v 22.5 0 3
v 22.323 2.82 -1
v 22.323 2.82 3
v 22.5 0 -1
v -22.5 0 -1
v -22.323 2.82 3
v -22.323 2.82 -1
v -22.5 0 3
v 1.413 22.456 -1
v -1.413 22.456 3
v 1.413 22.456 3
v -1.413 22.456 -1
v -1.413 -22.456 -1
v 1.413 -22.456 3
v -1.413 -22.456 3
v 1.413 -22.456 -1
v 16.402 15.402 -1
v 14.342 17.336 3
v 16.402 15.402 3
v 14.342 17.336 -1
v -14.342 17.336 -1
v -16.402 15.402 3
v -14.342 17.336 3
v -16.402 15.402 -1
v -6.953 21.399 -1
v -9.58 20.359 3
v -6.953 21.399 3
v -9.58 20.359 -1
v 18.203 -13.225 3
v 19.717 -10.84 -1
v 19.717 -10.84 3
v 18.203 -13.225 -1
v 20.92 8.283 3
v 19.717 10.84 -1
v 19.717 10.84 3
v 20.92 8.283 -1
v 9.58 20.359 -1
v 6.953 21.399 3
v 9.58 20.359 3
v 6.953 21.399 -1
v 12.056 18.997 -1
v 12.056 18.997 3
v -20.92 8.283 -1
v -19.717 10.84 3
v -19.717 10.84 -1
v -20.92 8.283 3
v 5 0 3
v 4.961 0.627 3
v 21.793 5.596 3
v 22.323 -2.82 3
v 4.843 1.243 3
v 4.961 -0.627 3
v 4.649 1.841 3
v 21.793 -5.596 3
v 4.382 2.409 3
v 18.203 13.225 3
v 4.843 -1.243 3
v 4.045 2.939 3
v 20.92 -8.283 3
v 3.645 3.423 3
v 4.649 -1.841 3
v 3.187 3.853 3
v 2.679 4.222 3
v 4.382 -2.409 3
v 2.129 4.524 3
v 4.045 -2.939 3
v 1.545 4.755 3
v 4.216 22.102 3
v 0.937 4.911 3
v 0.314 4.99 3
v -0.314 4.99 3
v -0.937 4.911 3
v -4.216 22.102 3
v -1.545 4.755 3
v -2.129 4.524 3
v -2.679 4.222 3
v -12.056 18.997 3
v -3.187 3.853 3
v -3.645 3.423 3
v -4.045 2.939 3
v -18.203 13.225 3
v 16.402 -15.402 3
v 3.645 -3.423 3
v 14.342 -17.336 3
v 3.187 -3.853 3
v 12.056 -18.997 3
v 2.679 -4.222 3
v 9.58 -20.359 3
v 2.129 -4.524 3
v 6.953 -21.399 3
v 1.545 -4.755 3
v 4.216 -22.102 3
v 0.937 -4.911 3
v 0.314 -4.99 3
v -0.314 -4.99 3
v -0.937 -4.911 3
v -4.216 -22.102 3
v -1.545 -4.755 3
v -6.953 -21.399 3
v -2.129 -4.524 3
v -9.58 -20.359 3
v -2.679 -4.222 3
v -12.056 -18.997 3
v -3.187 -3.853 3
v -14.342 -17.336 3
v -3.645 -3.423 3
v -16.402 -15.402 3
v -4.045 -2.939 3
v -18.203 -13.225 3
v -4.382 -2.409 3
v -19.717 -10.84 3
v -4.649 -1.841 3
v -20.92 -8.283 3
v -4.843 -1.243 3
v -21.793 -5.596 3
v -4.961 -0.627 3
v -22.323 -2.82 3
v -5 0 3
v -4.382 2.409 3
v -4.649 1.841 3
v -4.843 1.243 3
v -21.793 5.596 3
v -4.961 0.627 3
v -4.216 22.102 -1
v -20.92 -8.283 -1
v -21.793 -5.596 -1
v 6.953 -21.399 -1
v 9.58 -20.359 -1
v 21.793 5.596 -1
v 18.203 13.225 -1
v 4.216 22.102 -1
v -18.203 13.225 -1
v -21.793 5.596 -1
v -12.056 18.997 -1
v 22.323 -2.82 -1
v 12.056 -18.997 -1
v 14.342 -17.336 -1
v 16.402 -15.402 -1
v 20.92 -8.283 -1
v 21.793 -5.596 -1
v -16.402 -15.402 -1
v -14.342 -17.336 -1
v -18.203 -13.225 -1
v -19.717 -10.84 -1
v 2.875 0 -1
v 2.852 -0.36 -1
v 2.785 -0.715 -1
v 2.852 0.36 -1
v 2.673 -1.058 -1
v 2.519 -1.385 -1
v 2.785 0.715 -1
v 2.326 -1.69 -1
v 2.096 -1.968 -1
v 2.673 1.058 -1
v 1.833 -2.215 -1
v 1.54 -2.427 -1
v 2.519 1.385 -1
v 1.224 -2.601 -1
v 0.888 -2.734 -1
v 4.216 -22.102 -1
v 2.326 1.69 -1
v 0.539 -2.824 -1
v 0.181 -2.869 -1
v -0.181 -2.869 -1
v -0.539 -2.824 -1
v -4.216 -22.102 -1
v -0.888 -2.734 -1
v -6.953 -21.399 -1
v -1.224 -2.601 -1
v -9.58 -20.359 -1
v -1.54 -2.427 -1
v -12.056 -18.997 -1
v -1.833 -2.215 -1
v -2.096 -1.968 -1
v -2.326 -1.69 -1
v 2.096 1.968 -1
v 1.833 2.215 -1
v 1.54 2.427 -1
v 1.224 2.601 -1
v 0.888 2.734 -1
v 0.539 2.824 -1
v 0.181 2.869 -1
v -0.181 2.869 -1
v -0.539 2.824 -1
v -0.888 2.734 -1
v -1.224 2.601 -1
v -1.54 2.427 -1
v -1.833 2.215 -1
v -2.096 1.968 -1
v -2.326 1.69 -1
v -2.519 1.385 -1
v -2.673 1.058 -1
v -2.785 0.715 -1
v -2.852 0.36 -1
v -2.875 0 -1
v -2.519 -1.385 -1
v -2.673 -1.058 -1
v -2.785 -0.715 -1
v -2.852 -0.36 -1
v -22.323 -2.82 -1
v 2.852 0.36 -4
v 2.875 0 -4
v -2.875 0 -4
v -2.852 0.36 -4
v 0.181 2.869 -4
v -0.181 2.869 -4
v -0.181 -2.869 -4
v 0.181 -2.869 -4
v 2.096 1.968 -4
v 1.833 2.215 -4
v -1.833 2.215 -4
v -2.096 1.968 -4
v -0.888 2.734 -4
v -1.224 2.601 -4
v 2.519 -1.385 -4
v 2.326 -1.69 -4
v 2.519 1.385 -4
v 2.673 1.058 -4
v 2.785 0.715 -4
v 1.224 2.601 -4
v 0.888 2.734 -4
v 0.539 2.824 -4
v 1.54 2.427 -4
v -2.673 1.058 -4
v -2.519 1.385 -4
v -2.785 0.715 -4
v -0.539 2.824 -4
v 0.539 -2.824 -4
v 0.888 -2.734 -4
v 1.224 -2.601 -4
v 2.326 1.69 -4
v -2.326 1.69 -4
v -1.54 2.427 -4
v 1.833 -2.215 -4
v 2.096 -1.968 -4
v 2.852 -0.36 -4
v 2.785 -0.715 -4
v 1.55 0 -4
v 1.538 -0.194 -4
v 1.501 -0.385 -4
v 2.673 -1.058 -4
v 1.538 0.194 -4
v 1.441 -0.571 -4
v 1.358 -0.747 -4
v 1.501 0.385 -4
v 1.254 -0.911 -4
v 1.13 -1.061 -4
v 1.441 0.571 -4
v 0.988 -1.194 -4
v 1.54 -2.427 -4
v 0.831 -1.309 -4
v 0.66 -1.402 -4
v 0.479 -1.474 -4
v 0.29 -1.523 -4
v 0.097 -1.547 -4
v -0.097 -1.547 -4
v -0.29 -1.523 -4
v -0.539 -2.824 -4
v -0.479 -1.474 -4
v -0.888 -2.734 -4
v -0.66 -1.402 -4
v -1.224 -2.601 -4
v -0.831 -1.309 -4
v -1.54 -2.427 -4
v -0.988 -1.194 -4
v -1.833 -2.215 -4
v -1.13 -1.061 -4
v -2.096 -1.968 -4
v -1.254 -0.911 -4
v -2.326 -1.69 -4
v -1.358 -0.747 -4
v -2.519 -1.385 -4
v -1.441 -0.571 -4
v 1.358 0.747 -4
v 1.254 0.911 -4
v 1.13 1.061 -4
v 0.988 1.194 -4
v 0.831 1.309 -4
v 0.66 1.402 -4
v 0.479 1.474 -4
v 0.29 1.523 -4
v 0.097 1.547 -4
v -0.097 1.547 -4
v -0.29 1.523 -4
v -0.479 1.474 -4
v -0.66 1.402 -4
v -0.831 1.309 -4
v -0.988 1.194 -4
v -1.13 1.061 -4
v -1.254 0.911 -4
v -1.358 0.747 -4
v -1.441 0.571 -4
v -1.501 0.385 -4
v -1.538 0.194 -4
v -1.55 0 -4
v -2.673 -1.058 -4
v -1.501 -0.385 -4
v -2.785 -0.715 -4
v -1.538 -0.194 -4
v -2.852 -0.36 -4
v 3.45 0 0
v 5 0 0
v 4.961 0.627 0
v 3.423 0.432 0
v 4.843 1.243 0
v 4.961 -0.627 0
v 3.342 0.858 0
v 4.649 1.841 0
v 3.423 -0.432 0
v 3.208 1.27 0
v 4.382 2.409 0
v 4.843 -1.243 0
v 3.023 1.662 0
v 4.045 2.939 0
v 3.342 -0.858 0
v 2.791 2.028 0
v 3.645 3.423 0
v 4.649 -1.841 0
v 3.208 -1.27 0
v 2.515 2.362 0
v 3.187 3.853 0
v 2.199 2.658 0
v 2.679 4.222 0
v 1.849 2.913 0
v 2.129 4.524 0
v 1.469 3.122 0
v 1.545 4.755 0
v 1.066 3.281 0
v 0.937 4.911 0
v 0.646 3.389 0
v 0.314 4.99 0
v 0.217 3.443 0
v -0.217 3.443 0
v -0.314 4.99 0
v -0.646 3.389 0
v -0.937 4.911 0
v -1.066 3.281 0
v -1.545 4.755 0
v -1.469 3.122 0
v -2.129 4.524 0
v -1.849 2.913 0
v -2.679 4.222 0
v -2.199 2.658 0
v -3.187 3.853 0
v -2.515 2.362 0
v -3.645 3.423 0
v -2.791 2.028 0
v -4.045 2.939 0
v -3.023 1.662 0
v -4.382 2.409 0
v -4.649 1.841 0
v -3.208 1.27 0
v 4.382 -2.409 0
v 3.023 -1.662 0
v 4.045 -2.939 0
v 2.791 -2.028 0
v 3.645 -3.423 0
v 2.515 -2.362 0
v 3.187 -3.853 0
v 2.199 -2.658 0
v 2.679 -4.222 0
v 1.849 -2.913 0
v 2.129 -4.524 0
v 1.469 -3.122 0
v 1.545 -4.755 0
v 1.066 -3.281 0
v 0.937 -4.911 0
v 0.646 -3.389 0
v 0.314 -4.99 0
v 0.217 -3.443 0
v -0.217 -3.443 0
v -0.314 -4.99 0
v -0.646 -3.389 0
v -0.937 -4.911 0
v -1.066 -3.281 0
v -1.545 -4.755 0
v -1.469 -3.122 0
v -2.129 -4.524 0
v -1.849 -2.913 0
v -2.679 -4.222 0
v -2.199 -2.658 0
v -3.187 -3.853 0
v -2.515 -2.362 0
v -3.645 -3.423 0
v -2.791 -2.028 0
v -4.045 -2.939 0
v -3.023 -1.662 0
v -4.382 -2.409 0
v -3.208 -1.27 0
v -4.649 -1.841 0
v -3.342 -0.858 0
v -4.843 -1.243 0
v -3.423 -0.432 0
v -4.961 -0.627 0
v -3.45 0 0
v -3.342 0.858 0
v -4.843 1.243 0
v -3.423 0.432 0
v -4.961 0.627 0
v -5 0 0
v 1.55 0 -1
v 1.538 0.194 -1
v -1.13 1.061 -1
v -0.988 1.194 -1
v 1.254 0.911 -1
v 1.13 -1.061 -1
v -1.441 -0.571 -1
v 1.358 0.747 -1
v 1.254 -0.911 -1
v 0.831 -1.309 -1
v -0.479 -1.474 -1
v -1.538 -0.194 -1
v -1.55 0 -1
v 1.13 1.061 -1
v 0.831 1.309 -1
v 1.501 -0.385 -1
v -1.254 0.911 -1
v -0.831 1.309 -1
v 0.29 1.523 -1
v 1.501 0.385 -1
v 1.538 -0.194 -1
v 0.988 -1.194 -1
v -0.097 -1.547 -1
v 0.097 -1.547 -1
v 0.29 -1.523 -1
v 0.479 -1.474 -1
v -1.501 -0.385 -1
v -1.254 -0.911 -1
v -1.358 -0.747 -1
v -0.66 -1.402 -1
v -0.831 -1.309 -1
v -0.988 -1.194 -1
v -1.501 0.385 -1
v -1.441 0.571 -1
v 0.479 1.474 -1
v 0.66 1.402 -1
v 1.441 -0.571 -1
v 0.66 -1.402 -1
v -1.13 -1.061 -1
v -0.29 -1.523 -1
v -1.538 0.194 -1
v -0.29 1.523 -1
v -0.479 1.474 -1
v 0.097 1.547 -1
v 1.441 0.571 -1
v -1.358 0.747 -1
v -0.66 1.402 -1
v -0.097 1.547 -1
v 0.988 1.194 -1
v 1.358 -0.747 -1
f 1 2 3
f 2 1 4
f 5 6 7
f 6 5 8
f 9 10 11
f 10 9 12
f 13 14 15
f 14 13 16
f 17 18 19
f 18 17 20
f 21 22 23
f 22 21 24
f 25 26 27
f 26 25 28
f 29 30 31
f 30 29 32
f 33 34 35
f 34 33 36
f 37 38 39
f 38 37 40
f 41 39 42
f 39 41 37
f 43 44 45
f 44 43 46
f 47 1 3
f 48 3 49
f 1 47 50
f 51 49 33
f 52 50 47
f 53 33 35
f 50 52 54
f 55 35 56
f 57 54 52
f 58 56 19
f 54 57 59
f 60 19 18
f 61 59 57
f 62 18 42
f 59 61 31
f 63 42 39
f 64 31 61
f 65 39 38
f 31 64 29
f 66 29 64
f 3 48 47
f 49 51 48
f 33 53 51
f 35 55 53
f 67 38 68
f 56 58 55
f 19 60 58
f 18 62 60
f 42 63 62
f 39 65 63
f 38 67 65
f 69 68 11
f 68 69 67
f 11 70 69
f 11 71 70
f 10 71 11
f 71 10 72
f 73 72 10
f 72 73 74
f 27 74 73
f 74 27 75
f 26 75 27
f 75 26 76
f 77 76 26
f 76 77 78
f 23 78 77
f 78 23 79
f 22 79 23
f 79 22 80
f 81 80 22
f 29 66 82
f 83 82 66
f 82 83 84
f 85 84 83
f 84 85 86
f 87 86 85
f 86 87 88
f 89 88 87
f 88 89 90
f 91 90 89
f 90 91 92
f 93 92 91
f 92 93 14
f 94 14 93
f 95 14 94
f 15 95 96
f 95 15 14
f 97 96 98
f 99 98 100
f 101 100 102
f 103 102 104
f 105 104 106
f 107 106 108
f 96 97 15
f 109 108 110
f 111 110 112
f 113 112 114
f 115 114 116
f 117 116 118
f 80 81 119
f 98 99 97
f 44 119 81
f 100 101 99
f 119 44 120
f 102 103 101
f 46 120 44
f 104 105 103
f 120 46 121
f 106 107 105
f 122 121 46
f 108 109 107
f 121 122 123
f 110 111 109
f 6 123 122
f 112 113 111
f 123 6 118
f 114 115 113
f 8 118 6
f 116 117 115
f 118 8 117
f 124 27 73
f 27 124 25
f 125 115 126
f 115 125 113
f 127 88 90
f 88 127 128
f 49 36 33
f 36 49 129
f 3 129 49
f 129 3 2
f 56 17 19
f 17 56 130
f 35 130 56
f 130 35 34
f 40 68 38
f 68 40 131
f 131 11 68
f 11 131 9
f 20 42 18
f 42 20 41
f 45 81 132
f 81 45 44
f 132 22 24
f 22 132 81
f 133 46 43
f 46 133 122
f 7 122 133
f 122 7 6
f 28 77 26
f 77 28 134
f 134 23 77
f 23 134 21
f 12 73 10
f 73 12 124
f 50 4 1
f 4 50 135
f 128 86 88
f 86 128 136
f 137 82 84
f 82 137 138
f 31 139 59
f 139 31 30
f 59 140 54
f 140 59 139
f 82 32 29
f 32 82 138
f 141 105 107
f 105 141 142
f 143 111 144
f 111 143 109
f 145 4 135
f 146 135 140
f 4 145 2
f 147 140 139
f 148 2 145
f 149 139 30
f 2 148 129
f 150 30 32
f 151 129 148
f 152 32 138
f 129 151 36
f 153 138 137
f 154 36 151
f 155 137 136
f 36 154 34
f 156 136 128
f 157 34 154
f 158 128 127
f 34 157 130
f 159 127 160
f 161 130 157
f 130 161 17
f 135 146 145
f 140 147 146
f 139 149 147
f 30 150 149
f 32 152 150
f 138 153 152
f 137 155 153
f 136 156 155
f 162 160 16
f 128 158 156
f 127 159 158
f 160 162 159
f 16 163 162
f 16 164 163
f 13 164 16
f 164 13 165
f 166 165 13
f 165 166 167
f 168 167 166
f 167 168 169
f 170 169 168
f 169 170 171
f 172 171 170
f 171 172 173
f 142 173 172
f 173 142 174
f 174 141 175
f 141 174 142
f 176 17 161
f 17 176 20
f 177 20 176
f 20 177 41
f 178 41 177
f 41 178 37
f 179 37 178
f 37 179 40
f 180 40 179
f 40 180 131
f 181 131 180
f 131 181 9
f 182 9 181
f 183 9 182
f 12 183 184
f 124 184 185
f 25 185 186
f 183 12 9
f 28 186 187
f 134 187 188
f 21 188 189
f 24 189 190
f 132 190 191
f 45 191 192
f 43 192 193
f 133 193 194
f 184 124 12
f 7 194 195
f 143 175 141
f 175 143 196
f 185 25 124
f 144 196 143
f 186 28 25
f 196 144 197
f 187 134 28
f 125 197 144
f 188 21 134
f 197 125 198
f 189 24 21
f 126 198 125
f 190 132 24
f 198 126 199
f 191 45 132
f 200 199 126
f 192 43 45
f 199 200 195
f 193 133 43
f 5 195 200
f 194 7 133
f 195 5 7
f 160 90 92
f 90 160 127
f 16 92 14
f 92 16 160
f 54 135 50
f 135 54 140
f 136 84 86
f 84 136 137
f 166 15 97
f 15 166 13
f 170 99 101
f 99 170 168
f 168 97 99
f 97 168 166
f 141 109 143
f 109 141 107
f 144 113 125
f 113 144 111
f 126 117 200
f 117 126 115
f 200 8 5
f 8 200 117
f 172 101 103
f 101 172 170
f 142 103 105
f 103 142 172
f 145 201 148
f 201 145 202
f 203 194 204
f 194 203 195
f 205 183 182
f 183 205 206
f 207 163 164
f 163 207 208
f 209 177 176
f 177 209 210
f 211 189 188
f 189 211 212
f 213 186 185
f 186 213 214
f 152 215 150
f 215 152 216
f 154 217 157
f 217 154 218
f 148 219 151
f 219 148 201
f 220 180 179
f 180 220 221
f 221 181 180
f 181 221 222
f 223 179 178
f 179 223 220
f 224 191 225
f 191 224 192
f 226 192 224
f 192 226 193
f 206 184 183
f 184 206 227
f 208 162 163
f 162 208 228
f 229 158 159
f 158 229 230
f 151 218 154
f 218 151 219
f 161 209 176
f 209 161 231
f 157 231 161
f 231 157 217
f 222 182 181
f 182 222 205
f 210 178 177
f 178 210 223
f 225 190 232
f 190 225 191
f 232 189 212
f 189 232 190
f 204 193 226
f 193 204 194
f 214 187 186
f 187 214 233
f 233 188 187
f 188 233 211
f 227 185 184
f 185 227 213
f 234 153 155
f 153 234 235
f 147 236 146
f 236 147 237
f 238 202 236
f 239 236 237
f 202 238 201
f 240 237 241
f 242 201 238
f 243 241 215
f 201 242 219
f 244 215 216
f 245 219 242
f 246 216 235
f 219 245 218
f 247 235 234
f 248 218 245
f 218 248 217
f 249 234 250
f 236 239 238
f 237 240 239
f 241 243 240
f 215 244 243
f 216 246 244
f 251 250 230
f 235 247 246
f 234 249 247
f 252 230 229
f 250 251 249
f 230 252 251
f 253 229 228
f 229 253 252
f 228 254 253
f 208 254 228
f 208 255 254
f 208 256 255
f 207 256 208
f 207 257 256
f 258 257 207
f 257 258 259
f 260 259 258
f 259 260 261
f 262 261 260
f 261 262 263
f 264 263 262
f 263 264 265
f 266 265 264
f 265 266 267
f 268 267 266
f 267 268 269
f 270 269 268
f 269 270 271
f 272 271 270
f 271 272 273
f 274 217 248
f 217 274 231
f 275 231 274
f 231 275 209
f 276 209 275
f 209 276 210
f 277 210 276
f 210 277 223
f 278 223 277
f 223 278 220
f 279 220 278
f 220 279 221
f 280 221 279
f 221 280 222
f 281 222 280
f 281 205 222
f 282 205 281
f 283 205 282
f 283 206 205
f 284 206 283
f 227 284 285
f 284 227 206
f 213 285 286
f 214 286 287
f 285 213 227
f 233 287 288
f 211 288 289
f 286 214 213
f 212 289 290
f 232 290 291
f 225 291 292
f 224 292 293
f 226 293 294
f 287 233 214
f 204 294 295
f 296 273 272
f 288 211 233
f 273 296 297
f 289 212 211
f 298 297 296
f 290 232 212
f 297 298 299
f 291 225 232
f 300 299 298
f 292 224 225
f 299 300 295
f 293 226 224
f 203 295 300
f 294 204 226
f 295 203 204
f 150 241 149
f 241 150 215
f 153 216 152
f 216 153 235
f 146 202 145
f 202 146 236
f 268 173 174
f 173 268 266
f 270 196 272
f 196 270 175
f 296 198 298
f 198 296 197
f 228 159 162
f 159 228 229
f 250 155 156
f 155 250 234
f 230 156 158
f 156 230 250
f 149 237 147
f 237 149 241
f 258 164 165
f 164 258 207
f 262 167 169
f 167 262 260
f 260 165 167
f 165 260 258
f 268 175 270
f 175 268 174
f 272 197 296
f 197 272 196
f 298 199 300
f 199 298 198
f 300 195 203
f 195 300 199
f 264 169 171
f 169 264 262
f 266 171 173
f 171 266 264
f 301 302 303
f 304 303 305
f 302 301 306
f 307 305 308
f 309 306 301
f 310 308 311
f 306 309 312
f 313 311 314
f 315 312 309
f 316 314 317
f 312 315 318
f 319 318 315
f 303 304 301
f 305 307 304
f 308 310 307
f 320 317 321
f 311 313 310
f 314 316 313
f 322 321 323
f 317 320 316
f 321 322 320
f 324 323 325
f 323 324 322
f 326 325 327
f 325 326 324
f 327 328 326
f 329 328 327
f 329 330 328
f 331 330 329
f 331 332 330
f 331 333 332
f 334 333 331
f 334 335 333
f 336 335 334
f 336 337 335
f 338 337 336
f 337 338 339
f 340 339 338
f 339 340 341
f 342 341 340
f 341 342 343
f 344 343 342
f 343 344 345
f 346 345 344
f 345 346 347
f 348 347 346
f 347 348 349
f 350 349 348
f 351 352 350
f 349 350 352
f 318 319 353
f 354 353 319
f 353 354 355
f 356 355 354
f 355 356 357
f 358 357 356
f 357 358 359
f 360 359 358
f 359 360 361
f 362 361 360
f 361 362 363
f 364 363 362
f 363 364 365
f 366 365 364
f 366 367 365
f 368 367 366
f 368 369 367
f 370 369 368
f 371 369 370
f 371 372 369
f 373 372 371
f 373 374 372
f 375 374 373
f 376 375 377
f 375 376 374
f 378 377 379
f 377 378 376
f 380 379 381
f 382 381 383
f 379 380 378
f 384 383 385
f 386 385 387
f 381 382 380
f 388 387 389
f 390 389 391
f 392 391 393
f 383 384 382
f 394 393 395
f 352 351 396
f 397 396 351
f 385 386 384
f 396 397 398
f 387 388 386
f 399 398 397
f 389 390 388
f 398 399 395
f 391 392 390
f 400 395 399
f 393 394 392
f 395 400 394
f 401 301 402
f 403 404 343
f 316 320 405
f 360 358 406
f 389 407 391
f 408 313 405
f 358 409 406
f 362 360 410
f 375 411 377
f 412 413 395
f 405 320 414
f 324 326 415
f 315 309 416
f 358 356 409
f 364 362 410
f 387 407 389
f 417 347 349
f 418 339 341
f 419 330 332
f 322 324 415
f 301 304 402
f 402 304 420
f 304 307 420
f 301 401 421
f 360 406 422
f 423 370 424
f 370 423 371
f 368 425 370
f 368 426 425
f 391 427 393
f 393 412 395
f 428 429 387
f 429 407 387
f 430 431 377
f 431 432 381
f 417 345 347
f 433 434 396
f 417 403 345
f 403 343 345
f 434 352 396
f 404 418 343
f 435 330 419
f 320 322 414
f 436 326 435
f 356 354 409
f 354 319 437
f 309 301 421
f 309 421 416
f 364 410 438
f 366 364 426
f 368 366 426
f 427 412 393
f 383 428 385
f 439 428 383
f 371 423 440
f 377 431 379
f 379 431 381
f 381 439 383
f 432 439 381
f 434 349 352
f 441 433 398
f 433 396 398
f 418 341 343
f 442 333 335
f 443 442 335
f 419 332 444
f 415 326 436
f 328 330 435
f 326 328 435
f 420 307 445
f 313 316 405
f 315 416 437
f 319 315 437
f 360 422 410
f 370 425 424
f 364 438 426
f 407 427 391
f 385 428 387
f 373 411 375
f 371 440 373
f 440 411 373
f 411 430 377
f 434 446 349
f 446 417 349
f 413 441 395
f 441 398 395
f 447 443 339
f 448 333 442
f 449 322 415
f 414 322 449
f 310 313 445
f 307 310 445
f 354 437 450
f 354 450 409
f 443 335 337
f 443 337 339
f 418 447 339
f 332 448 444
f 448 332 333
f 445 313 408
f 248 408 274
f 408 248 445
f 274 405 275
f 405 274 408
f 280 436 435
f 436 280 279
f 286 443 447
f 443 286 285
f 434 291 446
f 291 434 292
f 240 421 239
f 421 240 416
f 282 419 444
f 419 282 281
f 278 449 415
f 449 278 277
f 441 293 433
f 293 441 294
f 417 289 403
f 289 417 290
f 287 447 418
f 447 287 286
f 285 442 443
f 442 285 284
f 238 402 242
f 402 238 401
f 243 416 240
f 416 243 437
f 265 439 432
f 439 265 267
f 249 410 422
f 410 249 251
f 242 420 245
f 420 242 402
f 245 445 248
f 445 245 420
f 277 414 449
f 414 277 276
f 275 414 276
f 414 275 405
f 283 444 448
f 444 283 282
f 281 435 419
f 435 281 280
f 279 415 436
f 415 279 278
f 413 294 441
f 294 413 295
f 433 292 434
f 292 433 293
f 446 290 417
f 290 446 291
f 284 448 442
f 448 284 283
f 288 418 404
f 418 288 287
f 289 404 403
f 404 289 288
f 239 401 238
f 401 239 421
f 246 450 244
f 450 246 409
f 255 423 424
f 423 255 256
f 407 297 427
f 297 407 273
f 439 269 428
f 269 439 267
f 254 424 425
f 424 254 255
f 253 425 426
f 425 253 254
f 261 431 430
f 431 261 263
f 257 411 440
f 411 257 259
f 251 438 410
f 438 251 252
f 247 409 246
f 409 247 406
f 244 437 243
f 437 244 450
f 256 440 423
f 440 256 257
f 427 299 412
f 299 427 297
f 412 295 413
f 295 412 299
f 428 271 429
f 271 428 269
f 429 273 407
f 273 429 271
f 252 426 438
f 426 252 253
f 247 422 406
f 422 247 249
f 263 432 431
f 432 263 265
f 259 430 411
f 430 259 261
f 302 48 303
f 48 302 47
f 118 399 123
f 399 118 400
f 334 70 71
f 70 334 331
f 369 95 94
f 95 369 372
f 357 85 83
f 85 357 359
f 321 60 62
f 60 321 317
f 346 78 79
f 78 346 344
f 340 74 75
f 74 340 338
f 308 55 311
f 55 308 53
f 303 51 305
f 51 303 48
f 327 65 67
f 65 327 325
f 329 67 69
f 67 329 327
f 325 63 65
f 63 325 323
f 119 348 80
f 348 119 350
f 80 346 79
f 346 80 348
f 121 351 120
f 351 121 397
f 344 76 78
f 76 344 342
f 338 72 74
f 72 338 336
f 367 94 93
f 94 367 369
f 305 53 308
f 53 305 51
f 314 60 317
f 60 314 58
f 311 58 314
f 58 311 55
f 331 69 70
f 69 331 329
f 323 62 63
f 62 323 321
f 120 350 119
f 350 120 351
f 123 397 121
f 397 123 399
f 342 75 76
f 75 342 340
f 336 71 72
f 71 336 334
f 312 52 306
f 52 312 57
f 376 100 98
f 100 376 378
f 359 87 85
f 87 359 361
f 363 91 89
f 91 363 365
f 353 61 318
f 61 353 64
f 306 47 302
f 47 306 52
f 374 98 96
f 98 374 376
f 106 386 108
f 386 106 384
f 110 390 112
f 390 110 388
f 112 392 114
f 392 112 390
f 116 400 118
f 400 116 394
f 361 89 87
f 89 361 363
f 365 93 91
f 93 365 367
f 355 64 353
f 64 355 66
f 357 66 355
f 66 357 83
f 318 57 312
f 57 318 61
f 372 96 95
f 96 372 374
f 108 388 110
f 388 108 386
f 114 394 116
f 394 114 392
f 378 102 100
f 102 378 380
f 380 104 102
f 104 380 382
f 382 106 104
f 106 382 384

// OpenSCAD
$fn = 50;

difference() {
	union() {
		translate(v = [0, 0, -1.0]) {
			cylinder(h = 4.0, r = 22.5);
		}
		#translate(v = [0, 0, -4.0]) {
			cylinder(h = 4.0, r = 2.875);
		}
	}
	union() {
		translate(v = [0, 0, 0]) {
			rotate(a = [0, 0, 0]) {
				difference() {
					union() {
						translate(v = [0, 0, -4.0]) {
							cylinder(h = 4.0, r = 1.25);
						}
						translate(v = [0, 0, -1.0]) {
							cylinder(h = 1.0, r1 = 1.55, r2 = 3.45);
						}
						translate(v = [0, 0, -4.0]) {
							cylinder(h = 4.0, r = 1.55);
						}
						translate(v = [0, 0, -4.0]) {
							cylinder(h = 4.0, r = 1.25);
						}
					}
					union();
				}
			}
		}
		#cylinder(h = 3, r = 5.0);
	}
}
